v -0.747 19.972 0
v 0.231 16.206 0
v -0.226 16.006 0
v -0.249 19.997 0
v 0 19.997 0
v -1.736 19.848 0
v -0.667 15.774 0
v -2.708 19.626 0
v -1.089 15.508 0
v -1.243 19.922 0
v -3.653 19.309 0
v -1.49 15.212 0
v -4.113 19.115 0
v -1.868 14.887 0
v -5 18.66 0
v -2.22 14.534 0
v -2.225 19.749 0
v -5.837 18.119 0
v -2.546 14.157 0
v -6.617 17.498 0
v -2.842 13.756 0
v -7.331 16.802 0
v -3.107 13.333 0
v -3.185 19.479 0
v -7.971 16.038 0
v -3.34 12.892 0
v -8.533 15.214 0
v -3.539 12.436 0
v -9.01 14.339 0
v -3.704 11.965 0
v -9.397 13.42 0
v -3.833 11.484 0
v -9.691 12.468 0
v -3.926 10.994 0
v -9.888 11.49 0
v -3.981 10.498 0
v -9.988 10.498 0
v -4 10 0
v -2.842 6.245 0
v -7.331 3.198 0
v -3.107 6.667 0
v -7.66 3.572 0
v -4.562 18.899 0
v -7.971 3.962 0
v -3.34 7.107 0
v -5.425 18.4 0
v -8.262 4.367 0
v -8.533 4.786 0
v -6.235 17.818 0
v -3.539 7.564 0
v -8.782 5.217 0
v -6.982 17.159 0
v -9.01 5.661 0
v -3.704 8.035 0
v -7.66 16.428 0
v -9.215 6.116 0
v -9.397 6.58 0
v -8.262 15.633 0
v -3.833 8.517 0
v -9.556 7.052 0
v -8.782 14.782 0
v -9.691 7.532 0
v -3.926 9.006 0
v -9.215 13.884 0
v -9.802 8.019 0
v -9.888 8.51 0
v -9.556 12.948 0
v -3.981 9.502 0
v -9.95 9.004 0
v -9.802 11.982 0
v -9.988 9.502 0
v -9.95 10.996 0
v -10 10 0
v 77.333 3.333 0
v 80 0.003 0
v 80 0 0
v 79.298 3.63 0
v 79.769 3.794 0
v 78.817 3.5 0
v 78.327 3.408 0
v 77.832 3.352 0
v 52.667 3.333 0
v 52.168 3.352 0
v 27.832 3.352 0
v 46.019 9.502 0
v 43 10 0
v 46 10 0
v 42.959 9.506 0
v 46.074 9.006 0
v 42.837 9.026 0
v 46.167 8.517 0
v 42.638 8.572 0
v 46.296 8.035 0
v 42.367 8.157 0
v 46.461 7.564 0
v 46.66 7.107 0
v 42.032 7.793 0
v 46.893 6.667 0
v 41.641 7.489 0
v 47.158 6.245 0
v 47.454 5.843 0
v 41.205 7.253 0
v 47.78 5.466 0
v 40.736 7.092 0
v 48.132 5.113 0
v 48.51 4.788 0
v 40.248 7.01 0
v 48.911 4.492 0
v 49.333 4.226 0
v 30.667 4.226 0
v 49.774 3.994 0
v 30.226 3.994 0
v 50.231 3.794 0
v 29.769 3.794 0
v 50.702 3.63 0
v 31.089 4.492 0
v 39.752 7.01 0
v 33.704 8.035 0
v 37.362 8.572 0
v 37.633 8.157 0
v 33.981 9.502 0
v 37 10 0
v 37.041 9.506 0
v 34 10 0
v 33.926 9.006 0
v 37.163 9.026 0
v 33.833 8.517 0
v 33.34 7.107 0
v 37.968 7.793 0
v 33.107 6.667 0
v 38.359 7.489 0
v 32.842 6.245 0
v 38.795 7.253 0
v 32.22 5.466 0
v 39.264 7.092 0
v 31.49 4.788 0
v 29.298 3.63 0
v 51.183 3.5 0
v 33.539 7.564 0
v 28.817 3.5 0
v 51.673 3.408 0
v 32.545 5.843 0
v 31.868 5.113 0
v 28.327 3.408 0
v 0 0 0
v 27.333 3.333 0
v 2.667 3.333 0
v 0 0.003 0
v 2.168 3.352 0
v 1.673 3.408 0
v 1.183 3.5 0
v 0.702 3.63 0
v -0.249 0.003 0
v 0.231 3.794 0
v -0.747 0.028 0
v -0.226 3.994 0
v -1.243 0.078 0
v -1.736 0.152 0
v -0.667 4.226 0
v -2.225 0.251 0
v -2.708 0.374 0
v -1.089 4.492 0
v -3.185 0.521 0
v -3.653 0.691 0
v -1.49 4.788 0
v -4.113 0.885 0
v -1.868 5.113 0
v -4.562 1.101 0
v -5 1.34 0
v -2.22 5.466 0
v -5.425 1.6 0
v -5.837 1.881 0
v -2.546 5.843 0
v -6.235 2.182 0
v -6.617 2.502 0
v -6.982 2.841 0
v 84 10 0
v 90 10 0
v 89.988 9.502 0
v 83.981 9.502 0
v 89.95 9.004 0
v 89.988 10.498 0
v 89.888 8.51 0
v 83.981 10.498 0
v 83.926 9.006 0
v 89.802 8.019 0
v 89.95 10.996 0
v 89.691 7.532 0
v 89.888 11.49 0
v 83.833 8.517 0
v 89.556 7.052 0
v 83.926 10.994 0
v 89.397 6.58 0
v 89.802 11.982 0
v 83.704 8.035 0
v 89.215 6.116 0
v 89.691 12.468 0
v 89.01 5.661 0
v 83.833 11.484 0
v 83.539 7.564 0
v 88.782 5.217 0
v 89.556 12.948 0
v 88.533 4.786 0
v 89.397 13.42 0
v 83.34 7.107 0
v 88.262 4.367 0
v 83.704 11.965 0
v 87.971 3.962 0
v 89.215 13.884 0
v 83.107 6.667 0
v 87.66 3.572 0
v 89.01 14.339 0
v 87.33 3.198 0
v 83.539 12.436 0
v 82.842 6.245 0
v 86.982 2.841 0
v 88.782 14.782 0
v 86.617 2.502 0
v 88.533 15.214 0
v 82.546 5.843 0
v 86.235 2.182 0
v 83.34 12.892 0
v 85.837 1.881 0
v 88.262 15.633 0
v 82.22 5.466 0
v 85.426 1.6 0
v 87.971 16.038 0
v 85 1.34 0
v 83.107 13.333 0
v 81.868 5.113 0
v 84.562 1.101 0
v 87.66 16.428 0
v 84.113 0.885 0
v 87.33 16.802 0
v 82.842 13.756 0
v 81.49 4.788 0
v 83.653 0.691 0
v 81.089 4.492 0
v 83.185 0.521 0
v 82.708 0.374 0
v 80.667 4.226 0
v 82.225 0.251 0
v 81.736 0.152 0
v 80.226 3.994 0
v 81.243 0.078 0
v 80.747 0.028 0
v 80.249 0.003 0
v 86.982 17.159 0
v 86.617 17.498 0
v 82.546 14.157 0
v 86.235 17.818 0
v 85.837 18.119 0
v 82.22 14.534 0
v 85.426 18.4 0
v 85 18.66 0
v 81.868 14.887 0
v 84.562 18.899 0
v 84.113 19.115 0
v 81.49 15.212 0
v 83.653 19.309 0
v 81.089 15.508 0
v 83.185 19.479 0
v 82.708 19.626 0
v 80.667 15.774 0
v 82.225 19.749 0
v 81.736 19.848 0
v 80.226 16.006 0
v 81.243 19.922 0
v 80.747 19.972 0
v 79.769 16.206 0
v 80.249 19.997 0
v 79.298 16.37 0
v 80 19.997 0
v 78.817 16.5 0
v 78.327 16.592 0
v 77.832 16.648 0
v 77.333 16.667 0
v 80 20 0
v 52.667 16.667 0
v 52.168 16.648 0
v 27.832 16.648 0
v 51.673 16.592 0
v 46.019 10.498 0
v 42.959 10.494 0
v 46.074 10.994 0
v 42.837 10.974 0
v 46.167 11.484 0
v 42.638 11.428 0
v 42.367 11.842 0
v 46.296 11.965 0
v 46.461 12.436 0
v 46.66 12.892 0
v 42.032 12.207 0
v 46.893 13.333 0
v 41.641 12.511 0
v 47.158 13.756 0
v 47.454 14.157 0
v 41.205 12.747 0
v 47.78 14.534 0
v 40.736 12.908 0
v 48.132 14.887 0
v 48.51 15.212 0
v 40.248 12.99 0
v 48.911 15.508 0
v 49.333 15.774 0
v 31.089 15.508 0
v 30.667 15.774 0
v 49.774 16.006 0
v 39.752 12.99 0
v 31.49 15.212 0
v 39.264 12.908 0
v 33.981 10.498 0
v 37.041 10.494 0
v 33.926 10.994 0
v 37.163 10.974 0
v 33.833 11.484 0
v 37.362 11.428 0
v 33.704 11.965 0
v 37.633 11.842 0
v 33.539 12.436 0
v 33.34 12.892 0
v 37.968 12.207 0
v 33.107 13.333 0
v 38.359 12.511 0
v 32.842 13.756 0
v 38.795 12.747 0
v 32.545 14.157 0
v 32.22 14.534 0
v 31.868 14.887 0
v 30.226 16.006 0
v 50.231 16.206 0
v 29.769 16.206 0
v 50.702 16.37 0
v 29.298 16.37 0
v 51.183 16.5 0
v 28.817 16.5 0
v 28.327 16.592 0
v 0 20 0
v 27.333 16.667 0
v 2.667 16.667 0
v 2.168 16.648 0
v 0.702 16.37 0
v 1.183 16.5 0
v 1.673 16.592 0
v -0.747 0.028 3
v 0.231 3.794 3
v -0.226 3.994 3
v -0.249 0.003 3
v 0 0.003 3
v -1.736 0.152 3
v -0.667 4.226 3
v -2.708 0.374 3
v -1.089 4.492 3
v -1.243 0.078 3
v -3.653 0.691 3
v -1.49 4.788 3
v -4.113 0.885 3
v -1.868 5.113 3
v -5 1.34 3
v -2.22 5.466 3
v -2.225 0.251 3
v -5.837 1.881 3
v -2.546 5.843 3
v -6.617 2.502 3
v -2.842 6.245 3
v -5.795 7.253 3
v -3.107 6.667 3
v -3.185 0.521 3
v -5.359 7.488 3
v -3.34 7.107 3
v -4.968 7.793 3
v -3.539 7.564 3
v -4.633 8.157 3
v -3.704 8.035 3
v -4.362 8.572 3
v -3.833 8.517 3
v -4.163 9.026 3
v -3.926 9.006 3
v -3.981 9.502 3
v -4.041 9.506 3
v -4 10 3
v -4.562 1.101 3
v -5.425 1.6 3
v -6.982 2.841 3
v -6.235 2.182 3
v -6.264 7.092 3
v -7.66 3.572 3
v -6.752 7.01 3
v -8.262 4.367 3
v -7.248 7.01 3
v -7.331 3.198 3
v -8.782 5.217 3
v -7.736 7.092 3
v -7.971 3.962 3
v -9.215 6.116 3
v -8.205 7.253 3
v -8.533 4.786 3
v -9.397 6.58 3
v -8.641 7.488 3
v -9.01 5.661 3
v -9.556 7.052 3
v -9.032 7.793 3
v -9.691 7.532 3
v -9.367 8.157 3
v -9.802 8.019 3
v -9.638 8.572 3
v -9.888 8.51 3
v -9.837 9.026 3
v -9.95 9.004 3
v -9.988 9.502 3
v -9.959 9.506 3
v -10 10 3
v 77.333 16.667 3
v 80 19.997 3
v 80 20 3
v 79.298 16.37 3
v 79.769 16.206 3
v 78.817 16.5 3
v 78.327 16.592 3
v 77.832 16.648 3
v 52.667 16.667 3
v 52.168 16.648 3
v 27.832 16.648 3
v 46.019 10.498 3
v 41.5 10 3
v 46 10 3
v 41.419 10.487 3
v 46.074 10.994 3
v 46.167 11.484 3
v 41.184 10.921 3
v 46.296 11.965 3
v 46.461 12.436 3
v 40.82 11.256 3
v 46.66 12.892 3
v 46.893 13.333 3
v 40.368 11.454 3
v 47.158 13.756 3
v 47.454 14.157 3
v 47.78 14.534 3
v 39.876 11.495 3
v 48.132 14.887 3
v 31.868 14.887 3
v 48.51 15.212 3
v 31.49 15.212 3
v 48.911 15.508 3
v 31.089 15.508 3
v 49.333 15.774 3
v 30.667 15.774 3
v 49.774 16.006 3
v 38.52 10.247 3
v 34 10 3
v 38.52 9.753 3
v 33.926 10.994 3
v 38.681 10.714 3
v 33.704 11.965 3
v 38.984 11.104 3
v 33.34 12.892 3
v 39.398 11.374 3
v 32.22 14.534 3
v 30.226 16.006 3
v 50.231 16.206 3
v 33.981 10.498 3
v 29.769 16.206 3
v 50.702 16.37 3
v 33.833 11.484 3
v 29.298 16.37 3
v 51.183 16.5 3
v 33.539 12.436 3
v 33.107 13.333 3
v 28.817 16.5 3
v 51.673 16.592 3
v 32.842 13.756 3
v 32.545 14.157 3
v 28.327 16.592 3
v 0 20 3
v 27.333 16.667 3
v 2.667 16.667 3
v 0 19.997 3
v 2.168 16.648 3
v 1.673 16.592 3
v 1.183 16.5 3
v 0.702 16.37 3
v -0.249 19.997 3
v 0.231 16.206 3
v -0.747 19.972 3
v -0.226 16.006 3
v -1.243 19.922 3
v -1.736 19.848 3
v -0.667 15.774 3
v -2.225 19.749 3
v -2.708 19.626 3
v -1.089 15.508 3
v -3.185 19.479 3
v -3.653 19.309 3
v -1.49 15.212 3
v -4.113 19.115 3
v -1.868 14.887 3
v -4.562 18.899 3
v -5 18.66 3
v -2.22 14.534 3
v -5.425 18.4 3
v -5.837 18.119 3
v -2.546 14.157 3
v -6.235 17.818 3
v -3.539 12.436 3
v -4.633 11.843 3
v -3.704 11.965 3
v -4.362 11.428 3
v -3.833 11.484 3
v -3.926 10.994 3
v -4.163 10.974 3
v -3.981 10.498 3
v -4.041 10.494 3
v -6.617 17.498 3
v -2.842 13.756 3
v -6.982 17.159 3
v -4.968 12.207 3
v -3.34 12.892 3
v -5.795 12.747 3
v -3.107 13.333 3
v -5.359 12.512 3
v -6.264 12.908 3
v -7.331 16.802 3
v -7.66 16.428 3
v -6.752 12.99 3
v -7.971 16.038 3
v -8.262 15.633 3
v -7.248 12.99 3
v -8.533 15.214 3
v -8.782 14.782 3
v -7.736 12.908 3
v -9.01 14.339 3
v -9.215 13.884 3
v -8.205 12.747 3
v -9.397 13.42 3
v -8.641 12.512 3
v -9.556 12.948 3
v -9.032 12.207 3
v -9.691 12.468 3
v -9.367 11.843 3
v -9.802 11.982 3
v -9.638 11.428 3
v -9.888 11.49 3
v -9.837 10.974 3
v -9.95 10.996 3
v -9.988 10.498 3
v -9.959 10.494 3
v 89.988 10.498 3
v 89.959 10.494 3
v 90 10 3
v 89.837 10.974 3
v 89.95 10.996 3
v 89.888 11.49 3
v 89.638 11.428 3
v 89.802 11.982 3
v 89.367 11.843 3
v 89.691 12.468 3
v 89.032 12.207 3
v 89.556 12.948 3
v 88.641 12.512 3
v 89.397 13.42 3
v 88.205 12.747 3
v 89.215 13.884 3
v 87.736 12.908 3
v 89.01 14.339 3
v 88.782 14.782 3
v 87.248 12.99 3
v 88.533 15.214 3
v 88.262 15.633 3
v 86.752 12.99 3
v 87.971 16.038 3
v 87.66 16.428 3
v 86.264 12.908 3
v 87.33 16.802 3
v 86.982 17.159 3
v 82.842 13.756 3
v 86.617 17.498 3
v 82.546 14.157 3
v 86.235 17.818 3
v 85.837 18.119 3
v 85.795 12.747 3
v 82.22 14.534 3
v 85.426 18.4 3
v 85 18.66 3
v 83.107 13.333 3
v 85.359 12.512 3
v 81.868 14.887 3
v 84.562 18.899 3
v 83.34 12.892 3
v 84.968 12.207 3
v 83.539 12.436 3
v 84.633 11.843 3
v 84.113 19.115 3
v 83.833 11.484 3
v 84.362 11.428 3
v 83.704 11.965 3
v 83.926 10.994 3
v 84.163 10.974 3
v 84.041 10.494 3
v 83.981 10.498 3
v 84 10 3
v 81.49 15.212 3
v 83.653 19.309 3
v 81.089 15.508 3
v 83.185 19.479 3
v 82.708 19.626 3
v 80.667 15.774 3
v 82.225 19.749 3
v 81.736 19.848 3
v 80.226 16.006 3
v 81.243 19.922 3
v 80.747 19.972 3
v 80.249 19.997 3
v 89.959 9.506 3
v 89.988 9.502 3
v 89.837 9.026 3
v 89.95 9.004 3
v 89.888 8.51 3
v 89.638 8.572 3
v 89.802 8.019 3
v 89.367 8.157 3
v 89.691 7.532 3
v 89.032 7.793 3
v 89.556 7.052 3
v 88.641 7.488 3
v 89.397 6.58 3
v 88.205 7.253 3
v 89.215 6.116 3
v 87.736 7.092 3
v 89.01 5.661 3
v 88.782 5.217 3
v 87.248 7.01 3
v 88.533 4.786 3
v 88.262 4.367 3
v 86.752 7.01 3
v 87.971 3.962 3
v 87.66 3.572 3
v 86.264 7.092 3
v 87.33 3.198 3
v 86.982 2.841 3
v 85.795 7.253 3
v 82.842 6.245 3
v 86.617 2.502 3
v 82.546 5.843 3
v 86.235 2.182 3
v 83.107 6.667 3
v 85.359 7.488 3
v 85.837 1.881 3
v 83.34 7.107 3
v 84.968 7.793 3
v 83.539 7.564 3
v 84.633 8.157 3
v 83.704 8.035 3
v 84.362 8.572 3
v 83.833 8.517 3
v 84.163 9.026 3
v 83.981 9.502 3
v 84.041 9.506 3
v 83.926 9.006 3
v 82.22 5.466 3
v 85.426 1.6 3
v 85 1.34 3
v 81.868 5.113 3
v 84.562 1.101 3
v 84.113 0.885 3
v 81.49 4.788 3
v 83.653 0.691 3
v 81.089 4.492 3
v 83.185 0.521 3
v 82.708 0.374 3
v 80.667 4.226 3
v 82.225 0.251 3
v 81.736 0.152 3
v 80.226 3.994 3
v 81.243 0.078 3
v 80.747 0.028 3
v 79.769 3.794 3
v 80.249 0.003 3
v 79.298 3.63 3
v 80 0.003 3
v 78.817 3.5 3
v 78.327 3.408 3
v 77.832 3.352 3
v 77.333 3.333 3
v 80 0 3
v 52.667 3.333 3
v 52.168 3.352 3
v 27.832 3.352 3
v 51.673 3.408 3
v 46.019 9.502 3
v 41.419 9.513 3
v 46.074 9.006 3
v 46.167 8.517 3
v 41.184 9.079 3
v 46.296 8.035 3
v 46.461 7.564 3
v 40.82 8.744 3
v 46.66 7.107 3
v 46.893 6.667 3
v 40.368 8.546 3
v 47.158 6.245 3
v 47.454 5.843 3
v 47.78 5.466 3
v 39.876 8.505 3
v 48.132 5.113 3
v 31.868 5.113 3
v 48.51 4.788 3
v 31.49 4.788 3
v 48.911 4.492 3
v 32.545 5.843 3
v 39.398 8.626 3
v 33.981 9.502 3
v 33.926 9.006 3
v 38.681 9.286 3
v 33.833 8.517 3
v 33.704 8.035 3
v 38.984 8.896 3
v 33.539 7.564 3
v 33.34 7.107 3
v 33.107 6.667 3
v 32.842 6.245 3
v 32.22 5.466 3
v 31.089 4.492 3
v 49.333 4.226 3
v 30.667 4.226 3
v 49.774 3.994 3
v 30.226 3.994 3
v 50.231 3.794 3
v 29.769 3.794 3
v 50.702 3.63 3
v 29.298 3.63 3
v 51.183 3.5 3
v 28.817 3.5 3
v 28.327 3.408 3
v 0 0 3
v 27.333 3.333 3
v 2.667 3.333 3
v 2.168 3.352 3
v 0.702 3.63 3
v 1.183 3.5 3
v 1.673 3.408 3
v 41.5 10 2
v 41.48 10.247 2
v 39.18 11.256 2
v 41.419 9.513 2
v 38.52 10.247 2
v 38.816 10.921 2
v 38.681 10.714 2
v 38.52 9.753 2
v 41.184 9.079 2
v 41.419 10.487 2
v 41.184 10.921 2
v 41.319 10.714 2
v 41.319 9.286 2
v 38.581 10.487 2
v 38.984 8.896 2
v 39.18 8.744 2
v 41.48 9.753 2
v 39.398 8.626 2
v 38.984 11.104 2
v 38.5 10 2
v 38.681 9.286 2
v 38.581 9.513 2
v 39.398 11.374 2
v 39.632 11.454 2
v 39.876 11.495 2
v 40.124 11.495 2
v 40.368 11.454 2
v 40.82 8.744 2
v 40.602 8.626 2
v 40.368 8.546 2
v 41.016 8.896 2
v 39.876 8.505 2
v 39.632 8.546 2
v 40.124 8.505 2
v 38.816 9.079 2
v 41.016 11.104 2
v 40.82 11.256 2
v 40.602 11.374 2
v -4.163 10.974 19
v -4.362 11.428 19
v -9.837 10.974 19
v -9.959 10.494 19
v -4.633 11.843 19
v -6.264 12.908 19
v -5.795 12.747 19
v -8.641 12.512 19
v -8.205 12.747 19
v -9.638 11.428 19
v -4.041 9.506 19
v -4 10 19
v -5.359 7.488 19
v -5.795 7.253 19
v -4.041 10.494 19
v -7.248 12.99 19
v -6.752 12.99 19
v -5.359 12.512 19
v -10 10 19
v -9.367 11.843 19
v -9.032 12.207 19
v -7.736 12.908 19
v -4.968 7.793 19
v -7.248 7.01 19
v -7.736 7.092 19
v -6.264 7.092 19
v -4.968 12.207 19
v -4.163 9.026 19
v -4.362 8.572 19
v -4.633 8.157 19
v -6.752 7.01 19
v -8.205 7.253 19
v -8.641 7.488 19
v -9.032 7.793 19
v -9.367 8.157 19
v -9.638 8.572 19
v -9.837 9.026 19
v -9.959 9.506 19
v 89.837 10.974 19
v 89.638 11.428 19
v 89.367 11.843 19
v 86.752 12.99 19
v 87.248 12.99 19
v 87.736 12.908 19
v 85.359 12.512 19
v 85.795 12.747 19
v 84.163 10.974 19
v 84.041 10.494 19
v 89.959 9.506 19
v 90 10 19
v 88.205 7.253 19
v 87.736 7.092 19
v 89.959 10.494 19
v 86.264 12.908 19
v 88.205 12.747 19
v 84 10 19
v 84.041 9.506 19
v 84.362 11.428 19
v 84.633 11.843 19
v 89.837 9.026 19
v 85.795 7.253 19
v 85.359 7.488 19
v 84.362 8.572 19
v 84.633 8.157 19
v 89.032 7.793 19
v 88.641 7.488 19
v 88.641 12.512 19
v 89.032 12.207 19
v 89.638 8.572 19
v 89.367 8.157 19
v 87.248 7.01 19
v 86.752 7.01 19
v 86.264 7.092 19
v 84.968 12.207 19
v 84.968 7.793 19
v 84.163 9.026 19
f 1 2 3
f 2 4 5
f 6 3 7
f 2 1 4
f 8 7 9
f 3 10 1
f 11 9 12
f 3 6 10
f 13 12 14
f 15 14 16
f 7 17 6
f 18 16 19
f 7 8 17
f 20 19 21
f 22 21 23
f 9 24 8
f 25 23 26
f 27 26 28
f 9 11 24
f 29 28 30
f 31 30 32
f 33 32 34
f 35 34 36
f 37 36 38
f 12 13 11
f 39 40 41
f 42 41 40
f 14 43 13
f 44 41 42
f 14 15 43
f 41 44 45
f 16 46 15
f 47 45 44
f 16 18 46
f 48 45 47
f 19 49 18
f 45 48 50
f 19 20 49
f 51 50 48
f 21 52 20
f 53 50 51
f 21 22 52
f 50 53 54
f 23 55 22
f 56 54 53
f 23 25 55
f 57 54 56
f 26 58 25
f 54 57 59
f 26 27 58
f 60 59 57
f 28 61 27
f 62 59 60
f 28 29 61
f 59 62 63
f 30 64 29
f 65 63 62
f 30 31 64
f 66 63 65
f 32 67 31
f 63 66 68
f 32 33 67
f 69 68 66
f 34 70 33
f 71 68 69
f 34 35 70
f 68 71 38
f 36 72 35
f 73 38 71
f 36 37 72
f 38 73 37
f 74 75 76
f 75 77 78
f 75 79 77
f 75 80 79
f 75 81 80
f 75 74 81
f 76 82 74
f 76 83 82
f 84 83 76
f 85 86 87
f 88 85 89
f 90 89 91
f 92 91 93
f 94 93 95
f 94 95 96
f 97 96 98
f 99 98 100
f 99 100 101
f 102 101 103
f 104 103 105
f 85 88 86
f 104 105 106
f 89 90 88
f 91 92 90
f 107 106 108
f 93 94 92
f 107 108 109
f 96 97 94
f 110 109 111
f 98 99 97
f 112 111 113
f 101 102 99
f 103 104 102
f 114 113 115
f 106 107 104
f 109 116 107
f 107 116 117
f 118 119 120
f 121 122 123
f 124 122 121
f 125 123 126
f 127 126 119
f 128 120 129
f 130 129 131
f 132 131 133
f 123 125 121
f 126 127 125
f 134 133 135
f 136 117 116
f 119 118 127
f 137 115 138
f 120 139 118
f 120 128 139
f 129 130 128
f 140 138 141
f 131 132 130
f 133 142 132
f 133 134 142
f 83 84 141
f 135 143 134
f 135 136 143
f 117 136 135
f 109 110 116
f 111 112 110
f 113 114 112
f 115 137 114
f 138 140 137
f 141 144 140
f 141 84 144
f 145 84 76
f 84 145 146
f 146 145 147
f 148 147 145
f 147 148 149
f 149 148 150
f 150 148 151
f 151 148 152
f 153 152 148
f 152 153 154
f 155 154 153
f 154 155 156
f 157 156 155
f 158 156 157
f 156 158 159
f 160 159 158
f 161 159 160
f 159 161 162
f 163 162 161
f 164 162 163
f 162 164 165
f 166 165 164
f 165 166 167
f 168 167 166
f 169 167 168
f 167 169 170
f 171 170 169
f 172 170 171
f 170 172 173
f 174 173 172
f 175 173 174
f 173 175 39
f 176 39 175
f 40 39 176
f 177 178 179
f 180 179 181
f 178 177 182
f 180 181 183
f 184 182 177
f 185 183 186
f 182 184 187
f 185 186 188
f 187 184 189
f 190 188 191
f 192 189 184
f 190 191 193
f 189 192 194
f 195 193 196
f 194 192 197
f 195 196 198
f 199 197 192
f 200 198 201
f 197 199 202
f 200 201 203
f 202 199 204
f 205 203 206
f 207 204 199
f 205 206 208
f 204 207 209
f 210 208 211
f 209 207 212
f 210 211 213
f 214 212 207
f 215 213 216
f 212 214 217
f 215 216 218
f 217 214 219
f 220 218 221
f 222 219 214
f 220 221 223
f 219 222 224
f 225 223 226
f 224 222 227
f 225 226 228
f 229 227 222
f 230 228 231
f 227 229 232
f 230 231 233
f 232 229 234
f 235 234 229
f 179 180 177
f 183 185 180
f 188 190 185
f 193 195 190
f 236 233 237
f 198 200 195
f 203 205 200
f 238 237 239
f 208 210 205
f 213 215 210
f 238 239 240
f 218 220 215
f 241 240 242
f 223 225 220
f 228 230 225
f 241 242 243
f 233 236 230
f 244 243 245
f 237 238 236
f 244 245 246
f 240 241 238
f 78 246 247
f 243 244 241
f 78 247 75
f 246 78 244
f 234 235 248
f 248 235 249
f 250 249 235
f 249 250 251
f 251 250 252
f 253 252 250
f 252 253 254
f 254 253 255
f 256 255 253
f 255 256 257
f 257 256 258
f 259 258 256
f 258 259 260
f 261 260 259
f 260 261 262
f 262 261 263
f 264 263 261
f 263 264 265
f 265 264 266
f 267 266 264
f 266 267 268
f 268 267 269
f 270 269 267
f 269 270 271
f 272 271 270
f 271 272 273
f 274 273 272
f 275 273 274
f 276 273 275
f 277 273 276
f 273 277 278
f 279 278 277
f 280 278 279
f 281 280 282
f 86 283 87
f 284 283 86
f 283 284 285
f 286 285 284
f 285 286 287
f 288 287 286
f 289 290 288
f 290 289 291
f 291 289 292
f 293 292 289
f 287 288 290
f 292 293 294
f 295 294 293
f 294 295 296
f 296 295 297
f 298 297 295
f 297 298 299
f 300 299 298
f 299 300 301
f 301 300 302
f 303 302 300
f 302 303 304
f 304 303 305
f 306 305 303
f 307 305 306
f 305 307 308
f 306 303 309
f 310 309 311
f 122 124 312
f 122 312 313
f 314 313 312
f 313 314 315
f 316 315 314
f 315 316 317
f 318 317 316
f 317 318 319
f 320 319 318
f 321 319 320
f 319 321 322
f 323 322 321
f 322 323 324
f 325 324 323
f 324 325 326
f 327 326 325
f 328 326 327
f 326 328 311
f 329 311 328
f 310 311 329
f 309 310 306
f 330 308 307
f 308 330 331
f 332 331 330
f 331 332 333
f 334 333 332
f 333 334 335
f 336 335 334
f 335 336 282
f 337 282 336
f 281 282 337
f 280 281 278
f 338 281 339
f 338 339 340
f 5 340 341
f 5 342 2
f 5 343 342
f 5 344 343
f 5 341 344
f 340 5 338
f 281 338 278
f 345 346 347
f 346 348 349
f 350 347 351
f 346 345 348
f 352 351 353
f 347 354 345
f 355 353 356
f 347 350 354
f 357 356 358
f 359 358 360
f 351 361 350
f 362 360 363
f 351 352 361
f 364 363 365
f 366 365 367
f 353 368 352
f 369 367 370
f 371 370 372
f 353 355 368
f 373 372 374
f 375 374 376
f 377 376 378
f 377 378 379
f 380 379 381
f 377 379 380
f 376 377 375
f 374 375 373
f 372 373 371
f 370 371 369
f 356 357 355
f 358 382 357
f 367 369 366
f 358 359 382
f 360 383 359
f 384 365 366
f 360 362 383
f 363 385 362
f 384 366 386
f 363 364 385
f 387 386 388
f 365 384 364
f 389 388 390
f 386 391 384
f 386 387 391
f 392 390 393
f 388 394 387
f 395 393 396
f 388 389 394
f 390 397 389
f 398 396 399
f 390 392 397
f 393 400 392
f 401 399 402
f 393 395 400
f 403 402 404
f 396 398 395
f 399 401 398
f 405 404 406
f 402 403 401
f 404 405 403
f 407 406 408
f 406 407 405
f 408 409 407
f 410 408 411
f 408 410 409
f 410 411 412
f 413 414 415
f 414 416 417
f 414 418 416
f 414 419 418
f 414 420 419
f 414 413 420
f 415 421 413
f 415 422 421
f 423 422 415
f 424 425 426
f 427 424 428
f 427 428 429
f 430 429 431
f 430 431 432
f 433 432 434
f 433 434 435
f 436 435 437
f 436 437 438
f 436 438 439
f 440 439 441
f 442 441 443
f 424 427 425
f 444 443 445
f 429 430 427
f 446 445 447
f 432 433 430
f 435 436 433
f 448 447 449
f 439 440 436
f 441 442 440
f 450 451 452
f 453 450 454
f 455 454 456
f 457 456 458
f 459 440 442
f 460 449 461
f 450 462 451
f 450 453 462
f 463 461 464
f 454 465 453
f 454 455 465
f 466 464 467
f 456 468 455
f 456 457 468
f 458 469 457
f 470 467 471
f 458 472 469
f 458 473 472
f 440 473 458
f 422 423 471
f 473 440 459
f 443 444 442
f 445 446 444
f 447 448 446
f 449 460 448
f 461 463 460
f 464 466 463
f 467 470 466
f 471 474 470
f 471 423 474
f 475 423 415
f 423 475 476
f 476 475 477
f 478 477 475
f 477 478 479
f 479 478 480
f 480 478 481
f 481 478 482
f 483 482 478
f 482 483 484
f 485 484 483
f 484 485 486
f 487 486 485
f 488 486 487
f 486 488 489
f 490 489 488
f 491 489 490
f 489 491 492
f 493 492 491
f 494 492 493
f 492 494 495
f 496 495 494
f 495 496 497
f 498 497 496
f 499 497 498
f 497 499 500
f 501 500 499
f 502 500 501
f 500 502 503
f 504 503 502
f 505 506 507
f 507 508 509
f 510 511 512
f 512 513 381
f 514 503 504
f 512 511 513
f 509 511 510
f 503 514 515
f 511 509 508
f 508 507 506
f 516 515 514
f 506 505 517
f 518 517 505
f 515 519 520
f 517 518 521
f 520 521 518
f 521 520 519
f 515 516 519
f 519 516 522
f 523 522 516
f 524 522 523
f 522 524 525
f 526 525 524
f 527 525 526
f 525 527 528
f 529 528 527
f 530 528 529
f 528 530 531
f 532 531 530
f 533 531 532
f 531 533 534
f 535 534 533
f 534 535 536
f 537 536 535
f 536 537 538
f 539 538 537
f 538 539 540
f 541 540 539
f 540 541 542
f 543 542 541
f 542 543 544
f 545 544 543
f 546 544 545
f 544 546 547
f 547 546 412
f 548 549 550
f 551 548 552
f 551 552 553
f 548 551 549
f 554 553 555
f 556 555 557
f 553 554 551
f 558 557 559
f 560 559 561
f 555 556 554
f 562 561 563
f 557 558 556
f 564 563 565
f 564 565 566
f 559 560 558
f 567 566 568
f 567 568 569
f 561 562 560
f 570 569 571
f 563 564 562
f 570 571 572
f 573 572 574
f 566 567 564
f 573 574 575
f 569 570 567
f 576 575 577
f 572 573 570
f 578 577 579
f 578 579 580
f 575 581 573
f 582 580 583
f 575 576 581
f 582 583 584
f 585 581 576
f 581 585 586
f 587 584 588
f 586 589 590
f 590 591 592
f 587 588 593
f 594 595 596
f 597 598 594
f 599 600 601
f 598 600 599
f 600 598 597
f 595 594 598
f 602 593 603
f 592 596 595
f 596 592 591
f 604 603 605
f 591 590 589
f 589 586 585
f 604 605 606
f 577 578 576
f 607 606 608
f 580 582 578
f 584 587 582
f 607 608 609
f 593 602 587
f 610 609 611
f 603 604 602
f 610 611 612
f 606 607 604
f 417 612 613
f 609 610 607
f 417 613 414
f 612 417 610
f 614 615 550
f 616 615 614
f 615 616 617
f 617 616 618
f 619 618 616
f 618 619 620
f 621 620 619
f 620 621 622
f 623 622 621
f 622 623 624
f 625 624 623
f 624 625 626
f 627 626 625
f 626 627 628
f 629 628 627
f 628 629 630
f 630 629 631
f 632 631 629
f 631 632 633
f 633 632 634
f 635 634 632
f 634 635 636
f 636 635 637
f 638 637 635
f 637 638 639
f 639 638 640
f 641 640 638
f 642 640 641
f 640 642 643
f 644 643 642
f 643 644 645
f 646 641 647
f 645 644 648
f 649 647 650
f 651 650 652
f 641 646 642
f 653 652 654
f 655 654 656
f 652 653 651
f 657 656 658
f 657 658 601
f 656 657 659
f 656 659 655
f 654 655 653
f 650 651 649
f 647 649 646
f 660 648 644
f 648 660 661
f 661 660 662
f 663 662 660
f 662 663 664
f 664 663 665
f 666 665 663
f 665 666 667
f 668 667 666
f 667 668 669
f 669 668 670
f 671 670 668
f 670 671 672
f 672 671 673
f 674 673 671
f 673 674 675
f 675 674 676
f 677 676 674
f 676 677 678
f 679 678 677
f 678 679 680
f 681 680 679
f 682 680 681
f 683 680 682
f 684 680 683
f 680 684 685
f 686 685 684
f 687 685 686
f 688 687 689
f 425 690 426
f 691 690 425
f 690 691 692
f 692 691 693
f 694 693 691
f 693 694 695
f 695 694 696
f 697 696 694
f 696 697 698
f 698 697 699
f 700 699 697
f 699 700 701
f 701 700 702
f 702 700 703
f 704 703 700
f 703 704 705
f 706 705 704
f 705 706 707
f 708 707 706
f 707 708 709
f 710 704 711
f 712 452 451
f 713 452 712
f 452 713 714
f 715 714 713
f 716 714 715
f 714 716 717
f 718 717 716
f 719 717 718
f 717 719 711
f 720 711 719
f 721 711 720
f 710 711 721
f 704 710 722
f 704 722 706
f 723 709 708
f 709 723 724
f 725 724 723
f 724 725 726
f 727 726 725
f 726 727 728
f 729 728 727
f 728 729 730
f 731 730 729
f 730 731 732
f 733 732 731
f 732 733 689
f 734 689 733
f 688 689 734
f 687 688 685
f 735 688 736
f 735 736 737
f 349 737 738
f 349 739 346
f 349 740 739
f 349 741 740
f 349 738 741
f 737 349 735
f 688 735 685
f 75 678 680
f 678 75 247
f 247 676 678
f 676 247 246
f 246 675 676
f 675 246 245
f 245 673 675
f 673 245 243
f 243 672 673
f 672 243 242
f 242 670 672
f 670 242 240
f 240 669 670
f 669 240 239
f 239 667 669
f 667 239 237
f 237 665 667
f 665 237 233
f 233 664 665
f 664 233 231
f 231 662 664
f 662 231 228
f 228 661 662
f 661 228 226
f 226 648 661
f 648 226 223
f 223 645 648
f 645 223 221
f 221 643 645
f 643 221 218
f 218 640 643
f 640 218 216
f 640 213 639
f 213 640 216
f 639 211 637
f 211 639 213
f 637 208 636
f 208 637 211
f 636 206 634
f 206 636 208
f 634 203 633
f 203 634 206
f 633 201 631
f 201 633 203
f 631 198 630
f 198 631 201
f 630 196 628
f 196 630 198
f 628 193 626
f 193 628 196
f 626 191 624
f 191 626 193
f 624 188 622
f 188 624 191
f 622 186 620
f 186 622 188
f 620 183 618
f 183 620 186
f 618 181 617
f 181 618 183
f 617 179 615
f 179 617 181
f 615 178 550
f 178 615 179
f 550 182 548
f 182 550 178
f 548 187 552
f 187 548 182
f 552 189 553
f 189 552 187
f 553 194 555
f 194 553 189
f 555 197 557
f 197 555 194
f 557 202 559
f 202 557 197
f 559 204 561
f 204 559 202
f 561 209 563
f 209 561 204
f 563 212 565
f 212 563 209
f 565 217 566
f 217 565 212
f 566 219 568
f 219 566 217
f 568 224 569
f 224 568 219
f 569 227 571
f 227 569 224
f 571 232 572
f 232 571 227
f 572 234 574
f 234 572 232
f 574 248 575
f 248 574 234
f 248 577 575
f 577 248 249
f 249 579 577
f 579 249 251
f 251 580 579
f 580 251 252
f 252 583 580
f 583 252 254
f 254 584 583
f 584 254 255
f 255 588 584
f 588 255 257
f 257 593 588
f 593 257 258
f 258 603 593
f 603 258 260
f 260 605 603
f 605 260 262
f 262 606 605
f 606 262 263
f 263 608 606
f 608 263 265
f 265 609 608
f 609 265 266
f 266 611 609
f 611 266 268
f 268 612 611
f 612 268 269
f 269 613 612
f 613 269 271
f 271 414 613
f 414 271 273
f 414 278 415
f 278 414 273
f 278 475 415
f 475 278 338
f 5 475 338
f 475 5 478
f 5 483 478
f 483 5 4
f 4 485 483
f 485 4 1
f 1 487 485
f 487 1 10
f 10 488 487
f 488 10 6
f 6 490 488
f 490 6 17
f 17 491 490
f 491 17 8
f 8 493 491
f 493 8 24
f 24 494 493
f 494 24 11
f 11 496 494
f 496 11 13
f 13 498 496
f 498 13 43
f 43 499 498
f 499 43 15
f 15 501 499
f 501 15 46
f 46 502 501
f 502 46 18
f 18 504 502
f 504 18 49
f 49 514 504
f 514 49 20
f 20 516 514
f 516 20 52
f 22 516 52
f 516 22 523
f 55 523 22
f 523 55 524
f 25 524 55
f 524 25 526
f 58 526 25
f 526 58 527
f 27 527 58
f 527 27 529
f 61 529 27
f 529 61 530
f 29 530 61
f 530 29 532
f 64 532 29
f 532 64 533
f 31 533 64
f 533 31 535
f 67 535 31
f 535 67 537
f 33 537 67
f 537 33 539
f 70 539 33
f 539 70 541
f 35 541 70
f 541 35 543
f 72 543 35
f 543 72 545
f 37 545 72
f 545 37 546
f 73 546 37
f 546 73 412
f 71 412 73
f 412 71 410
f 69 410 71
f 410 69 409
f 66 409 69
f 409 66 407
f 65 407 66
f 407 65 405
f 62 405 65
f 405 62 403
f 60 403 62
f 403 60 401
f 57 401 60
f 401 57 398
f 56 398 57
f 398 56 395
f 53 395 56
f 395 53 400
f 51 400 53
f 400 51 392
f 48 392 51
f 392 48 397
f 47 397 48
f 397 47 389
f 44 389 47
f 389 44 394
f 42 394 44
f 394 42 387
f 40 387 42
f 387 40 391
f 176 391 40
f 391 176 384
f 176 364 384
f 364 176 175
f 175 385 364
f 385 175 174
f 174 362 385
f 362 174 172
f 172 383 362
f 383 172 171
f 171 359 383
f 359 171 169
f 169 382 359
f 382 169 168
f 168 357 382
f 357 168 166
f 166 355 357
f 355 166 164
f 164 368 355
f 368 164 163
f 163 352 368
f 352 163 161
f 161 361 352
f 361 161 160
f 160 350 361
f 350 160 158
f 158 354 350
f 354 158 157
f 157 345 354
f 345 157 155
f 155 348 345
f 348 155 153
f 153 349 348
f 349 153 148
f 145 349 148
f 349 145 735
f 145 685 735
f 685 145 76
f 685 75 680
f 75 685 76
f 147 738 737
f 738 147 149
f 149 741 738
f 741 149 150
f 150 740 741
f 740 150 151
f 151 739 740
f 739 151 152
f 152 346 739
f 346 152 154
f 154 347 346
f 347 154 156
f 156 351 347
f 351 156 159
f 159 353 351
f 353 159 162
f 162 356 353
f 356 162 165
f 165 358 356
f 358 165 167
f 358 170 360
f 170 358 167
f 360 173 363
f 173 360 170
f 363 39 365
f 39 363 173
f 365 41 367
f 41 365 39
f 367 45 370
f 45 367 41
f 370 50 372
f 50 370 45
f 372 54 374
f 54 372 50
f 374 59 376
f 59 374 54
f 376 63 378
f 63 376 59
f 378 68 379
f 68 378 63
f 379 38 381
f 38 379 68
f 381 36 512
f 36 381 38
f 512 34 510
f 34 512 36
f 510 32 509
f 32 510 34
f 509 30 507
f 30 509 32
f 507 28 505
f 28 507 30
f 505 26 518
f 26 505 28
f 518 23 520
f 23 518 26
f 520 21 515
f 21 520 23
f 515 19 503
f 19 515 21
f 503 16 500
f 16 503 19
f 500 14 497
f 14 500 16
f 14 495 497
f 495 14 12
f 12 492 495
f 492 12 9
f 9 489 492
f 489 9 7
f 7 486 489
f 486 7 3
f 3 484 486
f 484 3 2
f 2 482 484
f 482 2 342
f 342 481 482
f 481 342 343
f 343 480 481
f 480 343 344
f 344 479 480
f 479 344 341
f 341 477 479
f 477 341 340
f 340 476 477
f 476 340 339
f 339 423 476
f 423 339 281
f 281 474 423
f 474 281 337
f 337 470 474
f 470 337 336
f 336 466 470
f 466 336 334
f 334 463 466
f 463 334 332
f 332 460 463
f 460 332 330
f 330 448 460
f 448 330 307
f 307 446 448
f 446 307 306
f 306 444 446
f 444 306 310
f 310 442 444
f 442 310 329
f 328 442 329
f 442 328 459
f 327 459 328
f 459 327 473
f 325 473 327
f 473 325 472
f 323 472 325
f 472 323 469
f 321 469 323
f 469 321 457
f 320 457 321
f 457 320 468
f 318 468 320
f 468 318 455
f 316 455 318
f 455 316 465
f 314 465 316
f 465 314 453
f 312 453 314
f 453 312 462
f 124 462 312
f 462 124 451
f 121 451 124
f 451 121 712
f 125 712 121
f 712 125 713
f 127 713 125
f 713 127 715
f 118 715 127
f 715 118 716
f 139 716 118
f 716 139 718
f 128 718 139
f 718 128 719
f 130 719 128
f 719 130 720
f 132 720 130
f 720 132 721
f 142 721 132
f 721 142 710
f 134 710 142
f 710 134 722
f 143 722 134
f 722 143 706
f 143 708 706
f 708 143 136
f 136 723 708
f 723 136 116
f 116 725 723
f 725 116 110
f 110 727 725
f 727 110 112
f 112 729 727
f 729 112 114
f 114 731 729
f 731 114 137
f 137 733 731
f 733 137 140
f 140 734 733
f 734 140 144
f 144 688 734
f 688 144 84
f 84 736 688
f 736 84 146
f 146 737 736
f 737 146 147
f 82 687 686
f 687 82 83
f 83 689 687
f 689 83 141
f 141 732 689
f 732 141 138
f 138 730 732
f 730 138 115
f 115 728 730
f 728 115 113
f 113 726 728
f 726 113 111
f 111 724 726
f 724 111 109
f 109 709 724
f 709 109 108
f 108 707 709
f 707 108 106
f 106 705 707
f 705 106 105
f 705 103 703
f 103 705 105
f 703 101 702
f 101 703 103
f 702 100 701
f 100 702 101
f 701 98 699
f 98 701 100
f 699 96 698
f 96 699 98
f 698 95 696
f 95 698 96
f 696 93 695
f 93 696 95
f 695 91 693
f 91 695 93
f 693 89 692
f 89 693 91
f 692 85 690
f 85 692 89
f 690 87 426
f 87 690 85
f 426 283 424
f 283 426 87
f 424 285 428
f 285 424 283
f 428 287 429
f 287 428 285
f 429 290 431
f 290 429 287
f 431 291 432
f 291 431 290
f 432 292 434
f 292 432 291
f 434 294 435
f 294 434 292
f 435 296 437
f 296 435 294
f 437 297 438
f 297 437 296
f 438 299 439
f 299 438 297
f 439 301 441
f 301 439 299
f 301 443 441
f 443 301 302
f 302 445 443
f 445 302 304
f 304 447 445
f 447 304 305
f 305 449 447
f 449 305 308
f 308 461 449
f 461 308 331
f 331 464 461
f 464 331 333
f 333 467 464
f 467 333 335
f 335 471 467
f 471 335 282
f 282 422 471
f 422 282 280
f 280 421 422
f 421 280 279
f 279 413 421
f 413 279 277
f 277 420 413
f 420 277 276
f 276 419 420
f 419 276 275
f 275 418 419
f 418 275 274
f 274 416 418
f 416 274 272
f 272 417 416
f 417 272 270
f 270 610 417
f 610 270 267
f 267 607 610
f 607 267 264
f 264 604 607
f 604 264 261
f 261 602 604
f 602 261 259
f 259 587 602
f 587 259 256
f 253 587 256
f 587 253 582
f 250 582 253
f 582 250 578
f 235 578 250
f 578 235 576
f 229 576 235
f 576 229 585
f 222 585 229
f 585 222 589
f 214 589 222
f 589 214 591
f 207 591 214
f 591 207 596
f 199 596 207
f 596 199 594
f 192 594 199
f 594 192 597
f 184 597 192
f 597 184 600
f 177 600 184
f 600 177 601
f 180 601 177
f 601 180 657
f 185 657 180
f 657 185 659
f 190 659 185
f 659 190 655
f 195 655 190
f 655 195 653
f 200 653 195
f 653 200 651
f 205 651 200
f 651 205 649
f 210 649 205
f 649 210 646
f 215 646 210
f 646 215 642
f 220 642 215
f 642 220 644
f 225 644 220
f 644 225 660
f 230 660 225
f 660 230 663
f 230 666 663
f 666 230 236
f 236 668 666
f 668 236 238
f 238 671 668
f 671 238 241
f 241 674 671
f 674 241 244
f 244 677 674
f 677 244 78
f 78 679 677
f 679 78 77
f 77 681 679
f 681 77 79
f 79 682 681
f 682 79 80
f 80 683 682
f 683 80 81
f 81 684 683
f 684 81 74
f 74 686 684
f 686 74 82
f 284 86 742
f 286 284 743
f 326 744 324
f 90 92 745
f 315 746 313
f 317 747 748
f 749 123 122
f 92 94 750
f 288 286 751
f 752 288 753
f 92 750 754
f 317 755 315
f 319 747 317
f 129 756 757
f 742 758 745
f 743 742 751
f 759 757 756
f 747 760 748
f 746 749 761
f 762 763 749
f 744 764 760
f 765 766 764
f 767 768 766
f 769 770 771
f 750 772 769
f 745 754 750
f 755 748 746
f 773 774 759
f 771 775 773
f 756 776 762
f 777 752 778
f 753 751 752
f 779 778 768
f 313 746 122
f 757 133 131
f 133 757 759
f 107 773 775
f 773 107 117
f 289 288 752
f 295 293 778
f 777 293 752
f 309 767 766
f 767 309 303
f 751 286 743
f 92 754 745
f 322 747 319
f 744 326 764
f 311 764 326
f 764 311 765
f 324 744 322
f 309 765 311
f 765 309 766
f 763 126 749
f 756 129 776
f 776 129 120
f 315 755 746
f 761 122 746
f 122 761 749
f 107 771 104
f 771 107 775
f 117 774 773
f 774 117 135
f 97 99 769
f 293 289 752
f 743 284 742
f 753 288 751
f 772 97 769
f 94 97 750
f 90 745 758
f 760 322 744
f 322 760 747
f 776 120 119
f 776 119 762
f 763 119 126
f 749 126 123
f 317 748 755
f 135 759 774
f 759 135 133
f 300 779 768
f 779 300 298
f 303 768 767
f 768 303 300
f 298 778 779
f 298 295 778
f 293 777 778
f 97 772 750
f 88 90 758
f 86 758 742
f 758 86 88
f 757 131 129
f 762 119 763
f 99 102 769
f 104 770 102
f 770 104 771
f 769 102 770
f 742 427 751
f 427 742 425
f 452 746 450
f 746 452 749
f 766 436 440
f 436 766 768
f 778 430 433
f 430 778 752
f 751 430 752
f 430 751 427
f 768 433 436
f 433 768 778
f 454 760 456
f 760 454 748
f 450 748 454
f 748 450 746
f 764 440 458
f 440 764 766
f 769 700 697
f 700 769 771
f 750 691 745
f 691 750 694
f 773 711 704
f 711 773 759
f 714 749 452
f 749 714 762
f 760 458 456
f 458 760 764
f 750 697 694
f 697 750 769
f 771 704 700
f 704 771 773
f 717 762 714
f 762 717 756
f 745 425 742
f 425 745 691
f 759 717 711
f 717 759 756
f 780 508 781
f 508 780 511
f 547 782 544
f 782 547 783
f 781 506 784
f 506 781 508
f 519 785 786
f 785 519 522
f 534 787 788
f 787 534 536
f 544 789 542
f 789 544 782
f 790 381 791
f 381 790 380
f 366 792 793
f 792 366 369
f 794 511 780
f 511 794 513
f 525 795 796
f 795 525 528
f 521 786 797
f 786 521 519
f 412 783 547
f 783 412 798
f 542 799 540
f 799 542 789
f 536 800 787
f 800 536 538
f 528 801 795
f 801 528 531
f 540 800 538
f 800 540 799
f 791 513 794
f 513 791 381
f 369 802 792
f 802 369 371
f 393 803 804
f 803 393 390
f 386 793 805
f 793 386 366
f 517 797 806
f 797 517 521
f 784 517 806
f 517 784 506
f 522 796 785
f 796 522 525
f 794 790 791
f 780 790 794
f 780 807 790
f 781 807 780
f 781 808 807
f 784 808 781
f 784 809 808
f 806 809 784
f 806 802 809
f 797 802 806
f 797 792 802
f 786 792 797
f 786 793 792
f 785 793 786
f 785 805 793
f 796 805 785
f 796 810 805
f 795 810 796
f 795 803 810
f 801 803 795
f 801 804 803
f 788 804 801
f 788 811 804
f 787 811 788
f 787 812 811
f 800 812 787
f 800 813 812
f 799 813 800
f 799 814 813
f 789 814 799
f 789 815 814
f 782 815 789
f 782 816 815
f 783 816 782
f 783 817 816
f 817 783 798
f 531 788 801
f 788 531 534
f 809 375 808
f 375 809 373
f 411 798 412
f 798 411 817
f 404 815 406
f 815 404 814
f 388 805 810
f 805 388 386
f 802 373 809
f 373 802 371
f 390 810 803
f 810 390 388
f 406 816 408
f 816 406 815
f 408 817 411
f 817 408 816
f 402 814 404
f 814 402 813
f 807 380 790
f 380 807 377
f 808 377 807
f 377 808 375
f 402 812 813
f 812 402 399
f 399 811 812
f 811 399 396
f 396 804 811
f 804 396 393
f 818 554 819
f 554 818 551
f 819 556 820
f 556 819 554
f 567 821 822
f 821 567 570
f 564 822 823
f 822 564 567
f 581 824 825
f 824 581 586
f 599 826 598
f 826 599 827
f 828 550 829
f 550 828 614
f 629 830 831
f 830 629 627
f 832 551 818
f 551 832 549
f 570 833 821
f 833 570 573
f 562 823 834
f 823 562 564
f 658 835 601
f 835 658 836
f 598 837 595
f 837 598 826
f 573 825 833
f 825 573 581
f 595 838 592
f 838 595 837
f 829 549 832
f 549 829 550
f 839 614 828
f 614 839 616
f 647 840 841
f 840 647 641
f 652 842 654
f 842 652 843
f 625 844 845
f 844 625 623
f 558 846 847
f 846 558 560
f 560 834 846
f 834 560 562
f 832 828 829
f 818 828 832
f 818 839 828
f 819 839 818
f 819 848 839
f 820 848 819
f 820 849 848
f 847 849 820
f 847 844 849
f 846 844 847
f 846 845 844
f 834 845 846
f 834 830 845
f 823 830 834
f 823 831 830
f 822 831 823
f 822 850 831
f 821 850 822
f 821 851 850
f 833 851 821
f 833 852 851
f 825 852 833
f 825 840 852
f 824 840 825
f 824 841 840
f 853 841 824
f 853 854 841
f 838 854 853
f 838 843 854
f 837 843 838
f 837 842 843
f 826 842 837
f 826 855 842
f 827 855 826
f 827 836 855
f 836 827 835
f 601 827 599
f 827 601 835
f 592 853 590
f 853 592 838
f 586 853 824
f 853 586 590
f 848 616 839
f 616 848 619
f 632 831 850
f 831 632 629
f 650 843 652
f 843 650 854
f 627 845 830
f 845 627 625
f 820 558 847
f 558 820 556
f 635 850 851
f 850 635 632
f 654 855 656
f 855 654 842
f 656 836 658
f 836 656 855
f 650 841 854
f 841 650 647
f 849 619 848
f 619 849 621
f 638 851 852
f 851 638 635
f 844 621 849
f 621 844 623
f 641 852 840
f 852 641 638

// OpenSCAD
/******************************************************************************
 *
 *  GLOBALS
 *
 ******************************************************************************/

/* [General] */

// Overall length
length = 100;
limiterDiameter = 6;
// Measured without plate thickness
limiterHeight = 16;
holeDiameter = 3;
plateWidth = 20;
plateThickness = 3;

/* [Hidden] */
$fa = 1;
$fs = 0.5;


/******************************************************************************
 *
 *  EXECUTION
 *
 ******************************************************************************/


plate();
limiters();


/***************************************************************************
 *
 *  DIRECT MODULES
 *
 ******************************************************************************/


module plate()
{
    difference()
    {
        linear_extrude(height = plateThickness, convexity = 8)
            _platePlane();
        translate([(length - plateWidth) / 2, plateWidth / 2, -0.0002])
            cylinder(plateThickness - 1, holeDiameter / 2 + plateThickness / 2, holeDiameter / 2 );
        translate([(length - plateWidth) / 2, plateWidth / 2, 0])
            cylinder(plateThickness + 1, holeDiameter / 2, holeDiameter / 2);
    }

}

module limiters()
{
    translate([-(plateWidth / 2 - limiterDiameter / 2), plateWidth / 2, plateThickness])
        cylinder(r = limiterDiameter / 2, h = limiterHeight);
    translate([length - plateWidth/2 - limiterDiameter / 2, plateWidth / 2, plateThickness])
        cylinder(r = limiterDiameter / 2, h = limiterHeight);
}



/******************************************************************************
 *
 *  HELPER AND COMPONENT MODULES
 *
 ******************************************************************************/

module _platePlane()
{
    difference()
    {
        union()
        {
            translate([0, plateWidth / 2, 0])
                circle(plateWidth / 2);
            square([length - plateWidth, plateWidth]);
            translate([length - plateWidth, plateWidth / 2, 0])
                circle(plateWidth / 2);
        }
        hull()
        {
            translate([-plateWidth / 2 + limiterDiameter + plateWidth / 3, plateWidth / 2, 0])
                circle(plateWidth / 3);
            translate([length / 2 - plateWidth / 2 - plateWidth / 3 - holeDiameter - plateThickness, plateWidth / 2, 0])
                circle(plateWidth / 3);
        }
        hull()
        {
            translate([length / 2 - plateWidth / 2 + plateWidth / 3 + holeDiameter + plateThickness, plateWidth / 2, 0])
                circle(plateWidth / 3);
            translate([length - limiterDiameter - plateWidth / 3 - plateWidth / 2, plateWidth / 2, 0])
                circle(plateWidth / 3);
        }
    }
}
